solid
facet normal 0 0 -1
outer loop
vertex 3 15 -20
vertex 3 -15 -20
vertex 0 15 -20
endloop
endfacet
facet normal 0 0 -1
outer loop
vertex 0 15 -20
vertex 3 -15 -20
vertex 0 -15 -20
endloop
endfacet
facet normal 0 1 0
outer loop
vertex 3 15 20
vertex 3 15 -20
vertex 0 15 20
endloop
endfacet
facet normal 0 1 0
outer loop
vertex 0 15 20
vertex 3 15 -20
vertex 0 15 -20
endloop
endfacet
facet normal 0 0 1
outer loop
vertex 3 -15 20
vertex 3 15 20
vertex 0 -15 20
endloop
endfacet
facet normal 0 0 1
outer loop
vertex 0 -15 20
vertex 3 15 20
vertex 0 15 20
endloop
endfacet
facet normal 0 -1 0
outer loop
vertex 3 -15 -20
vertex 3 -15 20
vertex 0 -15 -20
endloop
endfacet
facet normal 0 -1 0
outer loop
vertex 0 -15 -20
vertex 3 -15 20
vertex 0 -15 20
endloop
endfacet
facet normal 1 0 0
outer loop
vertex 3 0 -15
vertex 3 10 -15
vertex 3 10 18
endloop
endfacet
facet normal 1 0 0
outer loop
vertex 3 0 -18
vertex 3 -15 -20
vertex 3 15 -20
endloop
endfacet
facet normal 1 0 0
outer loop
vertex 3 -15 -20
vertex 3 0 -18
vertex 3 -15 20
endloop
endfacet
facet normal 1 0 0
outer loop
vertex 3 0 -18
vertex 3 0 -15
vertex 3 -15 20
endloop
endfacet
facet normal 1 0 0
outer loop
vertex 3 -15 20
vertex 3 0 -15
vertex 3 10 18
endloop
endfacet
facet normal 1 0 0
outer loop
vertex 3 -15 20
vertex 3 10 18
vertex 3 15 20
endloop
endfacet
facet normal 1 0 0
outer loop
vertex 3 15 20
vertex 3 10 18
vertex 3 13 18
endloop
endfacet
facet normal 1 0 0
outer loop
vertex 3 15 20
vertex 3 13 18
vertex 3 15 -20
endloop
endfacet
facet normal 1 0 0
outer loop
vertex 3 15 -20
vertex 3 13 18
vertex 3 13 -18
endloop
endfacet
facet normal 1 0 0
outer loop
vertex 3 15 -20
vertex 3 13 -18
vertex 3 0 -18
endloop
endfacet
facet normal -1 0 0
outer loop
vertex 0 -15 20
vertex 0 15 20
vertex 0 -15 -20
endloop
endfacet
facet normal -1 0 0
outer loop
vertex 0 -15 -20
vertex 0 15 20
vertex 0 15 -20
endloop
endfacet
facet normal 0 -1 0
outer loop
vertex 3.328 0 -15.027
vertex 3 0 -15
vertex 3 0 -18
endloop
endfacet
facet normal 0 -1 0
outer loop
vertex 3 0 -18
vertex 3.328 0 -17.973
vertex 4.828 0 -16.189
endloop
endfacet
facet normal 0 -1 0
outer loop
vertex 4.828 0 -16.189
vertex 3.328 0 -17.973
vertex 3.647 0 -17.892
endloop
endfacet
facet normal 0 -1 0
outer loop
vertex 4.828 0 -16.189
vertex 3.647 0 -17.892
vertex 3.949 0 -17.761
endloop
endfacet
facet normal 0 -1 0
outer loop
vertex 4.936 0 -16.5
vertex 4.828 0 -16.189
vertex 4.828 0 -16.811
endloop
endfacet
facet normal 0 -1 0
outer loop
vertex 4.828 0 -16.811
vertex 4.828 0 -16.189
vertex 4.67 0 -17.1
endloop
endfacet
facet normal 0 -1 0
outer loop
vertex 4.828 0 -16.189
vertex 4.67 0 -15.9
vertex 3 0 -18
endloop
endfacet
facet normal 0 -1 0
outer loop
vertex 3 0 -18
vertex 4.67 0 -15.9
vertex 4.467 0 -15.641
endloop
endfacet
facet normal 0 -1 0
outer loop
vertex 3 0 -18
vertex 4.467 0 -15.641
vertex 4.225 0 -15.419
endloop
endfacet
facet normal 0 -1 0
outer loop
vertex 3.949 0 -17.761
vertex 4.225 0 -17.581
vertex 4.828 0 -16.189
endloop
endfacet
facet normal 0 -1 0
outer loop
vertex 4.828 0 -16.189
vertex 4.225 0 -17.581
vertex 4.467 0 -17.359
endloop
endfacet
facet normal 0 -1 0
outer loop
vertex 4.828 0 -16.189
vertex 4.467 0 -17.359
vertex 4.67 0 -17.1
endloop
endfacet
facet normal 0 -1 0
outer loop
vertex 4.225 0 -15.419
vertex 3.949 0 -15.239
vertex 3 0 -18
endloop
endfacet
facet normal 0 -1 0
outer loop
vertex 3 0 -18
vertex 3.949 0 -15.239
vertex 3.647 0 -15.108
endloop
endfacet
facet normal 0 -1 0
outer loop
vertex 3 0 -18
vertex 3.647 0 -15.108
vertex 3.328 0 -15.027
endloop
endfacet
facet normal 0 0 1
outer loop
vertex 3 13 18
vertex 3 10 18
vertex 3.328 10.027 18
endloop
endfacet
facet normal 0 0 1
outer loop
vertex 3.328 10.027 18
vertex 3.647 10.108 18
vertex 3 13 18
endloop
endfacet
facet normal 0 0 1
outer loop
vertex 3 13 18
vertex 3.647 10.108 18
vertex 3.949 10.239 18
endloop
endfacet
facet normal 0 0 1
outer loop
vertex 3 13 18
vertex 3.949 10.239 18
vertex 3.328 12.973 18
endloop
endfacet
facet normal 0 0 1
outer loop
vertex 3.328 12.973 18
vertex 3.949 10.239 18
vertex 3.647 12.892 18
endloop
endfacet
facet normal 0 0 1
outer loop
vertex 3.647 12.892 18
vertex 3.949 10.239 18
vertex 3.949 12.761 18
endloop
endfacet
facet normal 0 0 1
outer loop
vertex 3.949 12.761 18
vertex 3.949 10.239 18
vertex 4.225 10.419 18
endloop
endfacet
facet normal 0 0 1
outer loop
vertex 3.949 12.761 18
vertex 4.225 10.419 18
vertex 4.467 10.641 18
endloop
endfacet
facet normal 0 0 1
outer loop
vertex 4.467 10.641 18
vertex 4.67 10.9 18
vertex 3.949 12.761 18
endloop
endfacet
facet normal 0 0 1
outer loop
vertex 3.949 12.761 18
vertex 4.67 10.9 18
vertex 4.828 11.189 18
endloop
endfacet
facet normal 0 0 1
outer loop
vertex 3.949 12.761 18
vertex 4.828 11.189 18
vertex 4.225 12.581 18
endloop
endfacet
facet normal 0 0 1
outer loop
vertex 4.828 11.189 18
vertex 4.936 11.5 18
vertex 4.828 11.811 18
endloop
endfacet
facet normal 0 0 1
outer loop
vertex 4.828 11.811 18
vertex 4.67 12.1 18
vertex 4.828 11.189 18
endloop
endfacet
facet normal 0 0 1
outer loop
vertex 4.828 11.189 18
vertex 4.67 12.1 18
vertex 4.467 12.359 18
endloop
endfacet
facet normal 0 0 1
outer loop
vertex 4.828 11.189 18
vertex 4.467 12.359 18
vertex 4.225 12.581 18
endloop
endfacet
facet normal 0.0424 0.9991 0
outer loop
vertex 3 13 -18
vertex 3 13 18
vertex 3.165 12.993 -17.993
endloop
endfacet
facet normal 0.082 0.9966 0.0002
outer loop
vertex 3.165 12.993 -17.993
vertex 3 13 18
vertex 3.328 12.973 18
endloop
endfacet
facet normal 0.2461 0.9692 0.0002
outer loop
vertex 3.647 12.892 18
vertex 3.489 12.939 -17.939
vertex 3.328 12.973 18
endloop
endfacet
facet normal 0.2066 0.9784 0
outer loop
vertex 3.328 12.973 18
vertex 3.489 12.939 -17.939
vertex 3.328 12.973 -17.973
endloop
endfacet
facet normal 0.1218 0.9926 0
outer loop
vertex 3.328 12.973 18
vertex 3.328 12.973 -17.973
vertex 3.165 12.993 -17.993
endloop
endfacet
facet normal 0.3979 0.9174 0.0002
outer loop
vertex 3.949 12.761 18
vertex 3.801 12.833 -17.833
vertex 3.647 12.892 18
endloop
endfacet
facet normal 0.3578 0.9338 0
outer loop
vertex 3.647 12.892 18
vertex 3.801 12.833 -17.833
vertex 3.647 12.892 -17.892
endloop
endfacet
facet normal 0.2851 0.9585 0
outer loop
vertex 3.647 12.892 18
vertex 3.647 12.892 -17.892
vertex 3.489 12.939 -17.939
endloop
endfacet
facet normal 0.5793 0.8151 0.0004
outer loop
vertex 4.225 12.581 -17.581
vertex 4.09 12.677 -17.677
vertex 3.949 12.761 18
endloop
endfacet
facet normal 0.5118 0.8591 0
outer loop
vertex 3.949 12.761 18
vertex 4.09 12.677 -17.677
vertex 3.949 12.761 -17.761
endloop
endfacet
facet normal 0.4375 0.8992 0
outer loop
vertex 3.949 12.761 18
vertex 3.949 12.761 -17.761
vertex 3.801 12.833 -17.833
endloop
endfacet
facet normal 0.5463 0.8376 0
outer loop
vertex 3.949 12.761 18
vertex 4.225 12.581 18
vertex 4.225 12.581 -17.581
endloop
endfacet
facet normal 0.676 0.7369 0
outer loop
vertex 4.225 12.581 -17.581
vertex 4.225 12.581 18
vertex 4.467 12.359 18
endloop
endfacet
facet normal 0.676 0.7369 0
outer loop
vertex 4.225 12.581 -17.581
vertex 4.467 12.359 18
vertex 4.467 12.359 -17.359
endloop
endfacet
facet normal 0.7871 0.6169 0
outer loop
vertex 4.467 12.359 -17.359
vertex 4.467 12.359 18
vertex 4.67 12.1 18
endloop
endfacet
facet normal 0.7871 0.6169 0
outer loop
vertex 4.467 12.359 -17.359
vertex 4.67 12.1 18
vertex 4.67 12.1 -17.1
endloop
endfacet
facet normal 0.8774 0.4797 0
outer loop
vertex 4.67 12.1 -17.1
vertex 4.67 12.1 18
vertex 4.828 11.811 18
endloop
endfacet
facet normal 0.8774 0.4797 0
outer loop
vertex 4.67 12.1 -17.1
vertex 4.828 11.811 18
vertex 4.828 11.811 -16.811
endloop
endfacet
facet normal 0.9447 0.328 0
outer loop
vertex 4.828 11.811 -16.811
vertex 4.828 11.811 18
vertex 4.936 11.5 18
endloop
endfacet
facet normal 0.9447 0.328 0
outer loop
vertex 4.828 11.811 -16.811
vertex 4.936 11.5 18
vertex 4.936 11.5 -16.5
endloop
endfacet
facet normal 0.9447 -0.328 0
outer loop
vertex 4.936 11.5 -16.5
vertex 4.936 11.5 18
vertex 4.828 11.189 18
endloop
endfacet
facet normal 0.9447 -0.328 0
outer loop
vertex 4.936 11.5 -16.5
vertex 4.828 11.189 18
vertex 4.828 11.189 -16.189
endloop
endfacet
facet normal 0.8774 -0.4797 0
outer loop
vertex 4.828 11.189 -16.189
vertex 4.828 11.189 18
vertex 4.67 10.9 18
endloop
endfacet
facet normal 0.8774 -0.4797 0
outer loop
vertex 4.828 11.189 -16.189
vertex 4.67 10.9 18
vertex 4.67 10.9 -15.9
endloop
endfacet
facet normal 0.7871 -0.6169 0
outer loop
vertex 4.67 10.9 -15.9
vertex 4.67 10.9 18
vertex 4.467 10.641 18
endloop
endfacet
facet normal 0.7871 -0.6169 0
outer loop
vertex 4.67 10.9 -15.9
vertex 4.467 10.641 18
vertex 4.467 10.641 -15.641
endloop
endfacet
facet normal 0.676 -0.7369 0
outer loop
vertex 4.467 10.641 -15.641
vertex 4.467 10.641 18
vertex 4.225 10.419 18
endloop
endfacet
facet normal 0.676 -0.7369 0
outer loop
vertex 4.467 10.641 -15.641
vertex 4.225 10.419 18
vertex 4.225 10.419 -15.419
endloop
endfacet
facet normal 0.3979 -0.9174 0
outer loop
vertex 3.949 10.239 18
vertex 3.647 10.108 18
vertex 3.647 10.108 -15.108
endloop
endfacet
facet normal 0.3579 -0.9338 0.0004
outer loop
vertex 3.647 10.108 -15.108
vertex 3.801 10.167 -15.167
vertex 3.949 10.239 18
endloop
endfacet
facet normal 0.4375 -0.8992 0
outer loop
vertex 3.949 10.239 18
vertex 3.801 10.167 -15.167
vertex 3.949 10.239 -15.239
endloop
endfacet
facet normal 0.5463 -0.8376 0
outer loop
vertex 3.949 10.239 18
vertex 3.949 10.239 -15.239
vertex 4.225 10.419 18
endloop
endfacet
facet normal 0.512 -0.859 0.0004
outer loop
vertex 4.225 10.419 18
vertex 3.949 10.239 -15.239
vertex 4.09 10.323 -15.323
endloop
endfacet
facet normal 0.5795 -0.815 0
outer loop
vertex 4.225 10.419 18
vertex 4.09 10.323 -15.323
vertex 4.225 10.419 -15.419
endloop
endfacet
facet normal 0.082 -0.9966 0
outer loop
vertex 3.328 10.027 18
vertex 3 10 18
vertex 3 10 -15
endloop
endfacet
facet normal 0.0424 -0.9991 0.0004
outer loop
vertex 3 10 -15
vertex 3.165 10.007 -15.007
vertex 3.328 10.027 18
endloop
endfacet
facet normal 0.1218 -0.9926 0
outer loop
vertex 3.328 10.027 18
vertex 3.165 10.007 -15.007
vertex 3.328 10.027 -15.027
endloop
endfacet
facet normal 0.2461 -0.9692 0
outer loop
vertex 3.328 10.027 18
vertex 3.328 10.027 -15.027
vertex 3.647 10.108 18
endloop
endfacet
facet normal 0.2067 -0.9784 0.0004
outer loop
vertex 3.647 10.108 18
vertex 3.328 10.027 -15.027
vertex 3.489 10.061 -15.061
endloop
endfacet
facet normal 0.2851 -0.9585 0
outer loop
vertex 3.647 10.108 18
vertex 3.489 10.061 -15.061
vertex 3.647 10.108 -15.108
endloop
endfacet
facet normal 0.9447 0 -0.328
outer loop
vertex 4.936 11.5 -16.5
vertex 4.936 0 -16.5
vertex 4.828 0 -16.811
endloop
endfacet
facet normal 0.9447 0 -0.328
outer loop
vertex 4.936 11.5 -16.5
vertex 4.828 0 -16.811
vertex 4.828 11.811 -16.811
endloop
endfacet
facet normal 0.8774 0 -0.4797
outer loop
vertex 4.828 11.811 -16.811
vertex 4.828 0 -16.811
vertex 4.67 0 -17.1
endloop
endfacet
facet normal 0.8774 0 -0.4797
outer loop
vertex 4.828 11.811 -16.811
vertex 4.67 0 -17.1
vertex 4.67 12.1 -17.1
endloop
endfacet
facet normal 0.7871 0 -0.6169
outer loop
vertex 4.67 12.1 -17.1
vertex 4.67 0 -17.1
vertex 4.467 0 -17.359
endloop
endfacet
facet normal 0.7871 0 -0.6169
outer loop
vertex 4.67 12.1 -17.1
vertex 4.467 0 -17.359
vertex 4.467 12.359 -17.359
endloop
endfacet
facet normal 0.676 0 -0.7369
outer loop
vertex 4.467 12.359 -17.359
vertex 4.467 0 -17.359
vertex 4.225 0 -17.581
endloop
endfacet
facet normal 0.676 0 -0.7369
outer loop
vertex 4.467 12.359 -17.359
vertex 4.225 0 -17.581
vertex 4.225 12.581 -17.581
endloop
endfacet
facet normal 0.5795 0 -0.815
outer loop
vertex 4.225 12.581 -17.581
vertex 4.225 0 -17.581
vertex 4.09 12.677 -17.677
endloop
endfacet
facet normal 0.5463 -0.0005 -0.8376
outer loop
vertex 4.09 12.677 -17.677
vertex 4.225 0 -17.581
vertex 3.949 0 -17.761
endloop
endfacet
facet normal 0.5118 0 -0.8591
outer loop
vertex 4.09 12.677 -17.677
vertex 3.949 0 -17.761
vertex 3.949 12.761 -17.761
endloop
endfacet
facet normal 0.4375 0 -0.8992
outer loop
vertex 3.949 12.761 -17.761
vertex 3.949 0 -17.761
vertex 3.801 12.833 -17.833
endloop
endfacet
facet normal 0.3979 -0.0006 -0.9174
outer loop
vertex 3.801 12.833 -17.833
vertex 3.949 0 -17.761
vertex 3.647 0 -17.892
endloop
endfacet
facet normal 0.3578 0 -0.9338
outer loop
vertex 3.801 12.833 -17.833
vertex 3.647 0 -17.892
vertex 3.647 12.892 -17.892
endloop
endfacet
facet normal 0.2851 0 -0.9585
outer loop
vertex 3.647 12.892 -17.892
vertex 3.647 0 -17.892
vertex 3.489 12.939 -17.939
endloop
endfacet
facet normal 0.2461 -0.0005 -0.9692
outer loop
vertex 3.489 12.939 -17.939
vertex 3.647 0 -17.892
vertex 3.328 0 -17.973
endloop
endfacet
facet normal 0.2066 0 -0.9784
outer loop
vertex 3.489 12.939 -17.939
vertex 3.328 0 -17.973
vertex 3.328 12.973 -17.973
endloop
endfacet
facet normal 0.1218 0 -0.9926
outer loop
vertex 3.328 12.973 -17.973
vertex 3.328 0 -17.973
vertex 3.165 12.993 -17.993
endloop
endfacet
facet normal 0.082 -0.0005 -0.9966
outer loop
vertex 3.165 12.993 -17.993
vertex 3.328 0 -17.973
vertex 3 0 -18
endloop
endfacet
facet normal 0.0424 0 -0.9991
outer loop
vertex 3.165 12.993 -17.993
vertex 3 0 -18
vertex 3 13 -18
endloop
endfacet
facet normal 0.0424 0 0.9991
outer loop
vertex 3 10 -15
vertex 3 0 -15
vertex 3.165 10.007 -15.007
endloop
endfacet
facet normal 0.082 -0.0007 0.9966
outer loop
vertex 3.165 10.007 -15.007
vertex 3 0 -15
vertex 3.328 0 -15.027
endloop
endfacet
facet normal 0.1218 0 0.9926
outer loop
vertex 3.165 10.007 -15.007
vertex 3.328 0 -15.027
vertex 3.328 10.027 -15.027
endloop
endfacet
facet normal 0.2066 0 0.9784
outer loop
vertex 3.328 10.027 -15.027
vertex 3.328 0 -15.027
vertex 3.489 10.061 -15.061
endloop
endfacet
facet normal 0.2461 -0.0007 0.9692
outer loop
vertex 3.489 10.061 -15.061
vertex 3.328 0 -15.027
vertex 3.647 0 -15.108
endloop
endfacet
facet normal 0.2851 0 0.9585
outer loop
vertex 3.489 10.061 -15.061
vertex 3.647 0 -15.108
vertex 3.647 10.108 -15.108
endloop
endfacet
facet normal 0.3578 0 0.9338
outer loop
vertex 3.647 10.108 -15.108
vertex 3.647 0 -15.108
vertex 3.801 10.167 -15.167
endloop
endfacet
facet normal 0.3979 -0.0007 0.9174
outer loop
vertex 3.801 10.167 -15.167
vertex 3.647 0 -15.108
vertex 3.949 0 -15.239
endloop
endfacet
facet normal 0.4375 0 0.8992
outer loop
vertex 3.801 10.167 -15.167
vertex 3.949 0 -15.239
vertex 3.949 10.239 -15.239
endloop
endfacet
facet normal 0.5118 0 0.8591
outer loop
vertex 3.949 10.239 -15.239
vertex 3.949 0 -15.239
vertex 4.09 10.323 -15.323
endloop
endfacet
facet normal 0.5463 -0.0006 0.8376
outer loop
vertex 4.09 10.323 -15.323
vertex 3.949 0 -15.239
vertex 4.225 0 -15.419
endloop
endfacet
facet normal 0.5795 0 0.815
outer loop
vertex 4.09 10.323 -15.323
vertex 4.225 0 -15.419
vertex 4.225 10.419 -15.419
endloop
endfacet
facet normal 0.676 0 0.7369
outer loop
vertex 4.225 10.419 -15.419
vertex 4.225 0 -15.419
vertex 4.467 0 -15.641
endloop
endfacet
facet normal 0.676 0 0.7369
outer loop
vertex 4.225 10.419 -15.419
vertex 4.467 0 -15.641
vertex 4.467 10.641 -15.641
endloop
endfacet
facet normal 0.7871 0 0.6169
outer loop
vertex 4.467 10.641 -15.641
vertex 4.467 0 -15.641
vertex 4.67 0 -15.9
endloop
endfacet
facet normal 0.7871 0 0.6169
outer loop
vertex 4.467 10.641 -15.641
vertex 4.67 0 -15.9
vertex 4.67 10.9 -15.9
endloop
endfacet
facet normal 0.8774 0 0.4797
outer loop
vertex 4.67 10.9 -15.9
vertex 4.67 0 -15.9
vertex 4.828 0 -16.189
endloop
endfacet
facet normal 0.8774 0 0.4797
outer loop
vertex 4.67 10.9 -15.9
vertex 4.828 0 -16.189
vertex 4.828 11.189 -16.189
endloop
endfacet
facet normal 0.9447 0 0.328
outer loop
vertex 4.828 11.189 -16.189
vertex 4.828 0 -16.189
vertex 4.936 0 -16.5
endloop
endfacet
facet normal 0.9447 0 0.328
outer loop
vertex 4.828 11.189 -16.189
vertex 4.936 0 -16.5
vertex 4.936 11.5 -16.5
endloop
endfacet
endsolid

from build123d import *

# Parameters (mm, degrees)
SKETCH1_W           = 40
SKETCH1_H           = 30
BOSS_EXTRUDE1_DEPTH = 3
BOSS_EXTRUDE2_DEPTH = 2
FILLET1_R           = 2


with BuildPart() as part:
    # Sketch1 → Boss-Extrude1 (new body)
    with BuildSketch(Plane(origin=(0, 0, 0), x_dir=(0, 0, -1), z_dir=(1, 0, 0))):
        Rectangle(SKETCH1_W, SKETCH1_H)
    extrude(amount=BOSS_EXTRUDE1_DEPTH)

    # Sketch2 → Boss-Extrude2 (add)
    with BuildSketch(Plane(origin=(3, 0, 0), x_dir=(0, 0, -1), z_dir=(1, 0, 0))):
        Polygon((18, 0), (18, 13), (-13.768503326, 13), (-18, 13), (-18, 10), (-15, 10), (15, 10), (15, 0), align=None)
    extrude(amount=BOSS_EXTRUDE2_DEPTH)

    # Fillet1
    # the kernel refuses this fillet: 2 mm, written as the material it takes off along each edge
    with BuildSketch(Plane(origin=(5, 10, -15), x_dir=(-1, 0, 0), z_dir=(0, 0, 1))) as fillet1_piece_1:
        with BuildLine():
            CenterArc((FILLET1_R, -FILLET1_R), FILLET1_R, 90, 90)
            Line((0, -FILLET1_R), (0, 0))
            Line((0, 0), (FILLET1_R, 0))
        make_face()
    extrude(amount=38, mode=Mode.SUBTRACT)
    with BuildSketch(Plane(origin=(5, 13, 23), x_dir=(-1, 0, 0), z_dir=(0, 0, -1))) as fillet1_piece_2:
        with BuildLine():
            CenterArc((FILLET1_R, -FILLET1_R), FILLET1_R, 90, 90)
            Line((0, -FILLET1_R), (0, 0))
            Line((0, 0), (FILLET1_R, 0))
        make_face()
    extrude(amount=46, mode=Mode.SUBTRACT)
    with BuildSketch(Plane(origin=(5, 10, -15), x_dir=(-1, 0, 0), z_dir=(0, -1, 0))) as fillet1_piece_3:
        with BuildLine():
            CenterArc((FILLET1_R, FILLET1_R), FILLET1_R, 180, 90)
            Line((0, FILLET1_R), (0, 0))
            Line((0, 0), (FILLET1_R, 0))
        make_face()
    extrude(amount=15, mode=Mode.SUBTRACT)
    with BuildSketch(Plane(origin=(5, -5, -18), x_dir=(-1, 0, 0), z_dir=(0, 1, 0))) as fillet1_piece_4:
        with BuildLine():
            CenterArc((FILLET1_R, FILLET1_R), FILLET1_R, 180, 90)
            Line((0, FILLET1_R), (0, 0))
            Line((0, 0), (FILLET1_R, 0))
        make_face()
    extrude(amount=23, mode=Mode.SUBTRACT)
    with BuildSketch(Plane(origin=(5, 15, -15), x_dir=(-1, 0, 0), z_dir=(0, -1, 0))) as fillet1_piece_5a_section:
        with BuildLine():
            CenterArc((FILLET1_R, FILLET1_R), FILLET1_R, 180, 90)
            Line((0, FILLET1_R), (0, 0))
            Line((0, 0), (FILLET1_R, 0))
        make_face()
    fillet1_piece_5a = extrude(amount=20, mode=Mode.PRIVATE)
    fillet1_piece_5a = split(fillet1_piece_5a, bisect_by=Plane(origin=(4.547209771, 10, -15.452790229), z_dir=(0, 1, 0)), keep=Keep.TOP, mode=Mode.PRIVATE)
    with BuildSketch(Plane(origin=(5, 10, -20), x_dir=(-1, 0, 0), z_dir=(0, 0, 1))) as fillet1_piece_5b_section:
        with BuildLine():
            CenterArc((FILLET1_R, -FILLET1_R), FILLET1_R, 90, 90)
            Line((0, -FILLET1_R), (0, 0))
            Line((0, 0), (FILLET1_R, 0))
        make_face()
    fillet1_piece_5b = extrude(amount=43, mode=Mode.PRIVATE)
    fillet1_piece_5b = split(fillet1_piece_5b, bisect_by=Plane(origin=(4.547209771, 10.452790229, -15), z_dir=(0, 0, -1)), keep=Keep.TOP, mode=Mode.PRIVATE)
    fillet1_piece_5 = fillet1_piece_5a & fillet1_piece_5b
    add(fillet1_piece_5, mode=Mode.SUBTRACT)


solid = part.part
